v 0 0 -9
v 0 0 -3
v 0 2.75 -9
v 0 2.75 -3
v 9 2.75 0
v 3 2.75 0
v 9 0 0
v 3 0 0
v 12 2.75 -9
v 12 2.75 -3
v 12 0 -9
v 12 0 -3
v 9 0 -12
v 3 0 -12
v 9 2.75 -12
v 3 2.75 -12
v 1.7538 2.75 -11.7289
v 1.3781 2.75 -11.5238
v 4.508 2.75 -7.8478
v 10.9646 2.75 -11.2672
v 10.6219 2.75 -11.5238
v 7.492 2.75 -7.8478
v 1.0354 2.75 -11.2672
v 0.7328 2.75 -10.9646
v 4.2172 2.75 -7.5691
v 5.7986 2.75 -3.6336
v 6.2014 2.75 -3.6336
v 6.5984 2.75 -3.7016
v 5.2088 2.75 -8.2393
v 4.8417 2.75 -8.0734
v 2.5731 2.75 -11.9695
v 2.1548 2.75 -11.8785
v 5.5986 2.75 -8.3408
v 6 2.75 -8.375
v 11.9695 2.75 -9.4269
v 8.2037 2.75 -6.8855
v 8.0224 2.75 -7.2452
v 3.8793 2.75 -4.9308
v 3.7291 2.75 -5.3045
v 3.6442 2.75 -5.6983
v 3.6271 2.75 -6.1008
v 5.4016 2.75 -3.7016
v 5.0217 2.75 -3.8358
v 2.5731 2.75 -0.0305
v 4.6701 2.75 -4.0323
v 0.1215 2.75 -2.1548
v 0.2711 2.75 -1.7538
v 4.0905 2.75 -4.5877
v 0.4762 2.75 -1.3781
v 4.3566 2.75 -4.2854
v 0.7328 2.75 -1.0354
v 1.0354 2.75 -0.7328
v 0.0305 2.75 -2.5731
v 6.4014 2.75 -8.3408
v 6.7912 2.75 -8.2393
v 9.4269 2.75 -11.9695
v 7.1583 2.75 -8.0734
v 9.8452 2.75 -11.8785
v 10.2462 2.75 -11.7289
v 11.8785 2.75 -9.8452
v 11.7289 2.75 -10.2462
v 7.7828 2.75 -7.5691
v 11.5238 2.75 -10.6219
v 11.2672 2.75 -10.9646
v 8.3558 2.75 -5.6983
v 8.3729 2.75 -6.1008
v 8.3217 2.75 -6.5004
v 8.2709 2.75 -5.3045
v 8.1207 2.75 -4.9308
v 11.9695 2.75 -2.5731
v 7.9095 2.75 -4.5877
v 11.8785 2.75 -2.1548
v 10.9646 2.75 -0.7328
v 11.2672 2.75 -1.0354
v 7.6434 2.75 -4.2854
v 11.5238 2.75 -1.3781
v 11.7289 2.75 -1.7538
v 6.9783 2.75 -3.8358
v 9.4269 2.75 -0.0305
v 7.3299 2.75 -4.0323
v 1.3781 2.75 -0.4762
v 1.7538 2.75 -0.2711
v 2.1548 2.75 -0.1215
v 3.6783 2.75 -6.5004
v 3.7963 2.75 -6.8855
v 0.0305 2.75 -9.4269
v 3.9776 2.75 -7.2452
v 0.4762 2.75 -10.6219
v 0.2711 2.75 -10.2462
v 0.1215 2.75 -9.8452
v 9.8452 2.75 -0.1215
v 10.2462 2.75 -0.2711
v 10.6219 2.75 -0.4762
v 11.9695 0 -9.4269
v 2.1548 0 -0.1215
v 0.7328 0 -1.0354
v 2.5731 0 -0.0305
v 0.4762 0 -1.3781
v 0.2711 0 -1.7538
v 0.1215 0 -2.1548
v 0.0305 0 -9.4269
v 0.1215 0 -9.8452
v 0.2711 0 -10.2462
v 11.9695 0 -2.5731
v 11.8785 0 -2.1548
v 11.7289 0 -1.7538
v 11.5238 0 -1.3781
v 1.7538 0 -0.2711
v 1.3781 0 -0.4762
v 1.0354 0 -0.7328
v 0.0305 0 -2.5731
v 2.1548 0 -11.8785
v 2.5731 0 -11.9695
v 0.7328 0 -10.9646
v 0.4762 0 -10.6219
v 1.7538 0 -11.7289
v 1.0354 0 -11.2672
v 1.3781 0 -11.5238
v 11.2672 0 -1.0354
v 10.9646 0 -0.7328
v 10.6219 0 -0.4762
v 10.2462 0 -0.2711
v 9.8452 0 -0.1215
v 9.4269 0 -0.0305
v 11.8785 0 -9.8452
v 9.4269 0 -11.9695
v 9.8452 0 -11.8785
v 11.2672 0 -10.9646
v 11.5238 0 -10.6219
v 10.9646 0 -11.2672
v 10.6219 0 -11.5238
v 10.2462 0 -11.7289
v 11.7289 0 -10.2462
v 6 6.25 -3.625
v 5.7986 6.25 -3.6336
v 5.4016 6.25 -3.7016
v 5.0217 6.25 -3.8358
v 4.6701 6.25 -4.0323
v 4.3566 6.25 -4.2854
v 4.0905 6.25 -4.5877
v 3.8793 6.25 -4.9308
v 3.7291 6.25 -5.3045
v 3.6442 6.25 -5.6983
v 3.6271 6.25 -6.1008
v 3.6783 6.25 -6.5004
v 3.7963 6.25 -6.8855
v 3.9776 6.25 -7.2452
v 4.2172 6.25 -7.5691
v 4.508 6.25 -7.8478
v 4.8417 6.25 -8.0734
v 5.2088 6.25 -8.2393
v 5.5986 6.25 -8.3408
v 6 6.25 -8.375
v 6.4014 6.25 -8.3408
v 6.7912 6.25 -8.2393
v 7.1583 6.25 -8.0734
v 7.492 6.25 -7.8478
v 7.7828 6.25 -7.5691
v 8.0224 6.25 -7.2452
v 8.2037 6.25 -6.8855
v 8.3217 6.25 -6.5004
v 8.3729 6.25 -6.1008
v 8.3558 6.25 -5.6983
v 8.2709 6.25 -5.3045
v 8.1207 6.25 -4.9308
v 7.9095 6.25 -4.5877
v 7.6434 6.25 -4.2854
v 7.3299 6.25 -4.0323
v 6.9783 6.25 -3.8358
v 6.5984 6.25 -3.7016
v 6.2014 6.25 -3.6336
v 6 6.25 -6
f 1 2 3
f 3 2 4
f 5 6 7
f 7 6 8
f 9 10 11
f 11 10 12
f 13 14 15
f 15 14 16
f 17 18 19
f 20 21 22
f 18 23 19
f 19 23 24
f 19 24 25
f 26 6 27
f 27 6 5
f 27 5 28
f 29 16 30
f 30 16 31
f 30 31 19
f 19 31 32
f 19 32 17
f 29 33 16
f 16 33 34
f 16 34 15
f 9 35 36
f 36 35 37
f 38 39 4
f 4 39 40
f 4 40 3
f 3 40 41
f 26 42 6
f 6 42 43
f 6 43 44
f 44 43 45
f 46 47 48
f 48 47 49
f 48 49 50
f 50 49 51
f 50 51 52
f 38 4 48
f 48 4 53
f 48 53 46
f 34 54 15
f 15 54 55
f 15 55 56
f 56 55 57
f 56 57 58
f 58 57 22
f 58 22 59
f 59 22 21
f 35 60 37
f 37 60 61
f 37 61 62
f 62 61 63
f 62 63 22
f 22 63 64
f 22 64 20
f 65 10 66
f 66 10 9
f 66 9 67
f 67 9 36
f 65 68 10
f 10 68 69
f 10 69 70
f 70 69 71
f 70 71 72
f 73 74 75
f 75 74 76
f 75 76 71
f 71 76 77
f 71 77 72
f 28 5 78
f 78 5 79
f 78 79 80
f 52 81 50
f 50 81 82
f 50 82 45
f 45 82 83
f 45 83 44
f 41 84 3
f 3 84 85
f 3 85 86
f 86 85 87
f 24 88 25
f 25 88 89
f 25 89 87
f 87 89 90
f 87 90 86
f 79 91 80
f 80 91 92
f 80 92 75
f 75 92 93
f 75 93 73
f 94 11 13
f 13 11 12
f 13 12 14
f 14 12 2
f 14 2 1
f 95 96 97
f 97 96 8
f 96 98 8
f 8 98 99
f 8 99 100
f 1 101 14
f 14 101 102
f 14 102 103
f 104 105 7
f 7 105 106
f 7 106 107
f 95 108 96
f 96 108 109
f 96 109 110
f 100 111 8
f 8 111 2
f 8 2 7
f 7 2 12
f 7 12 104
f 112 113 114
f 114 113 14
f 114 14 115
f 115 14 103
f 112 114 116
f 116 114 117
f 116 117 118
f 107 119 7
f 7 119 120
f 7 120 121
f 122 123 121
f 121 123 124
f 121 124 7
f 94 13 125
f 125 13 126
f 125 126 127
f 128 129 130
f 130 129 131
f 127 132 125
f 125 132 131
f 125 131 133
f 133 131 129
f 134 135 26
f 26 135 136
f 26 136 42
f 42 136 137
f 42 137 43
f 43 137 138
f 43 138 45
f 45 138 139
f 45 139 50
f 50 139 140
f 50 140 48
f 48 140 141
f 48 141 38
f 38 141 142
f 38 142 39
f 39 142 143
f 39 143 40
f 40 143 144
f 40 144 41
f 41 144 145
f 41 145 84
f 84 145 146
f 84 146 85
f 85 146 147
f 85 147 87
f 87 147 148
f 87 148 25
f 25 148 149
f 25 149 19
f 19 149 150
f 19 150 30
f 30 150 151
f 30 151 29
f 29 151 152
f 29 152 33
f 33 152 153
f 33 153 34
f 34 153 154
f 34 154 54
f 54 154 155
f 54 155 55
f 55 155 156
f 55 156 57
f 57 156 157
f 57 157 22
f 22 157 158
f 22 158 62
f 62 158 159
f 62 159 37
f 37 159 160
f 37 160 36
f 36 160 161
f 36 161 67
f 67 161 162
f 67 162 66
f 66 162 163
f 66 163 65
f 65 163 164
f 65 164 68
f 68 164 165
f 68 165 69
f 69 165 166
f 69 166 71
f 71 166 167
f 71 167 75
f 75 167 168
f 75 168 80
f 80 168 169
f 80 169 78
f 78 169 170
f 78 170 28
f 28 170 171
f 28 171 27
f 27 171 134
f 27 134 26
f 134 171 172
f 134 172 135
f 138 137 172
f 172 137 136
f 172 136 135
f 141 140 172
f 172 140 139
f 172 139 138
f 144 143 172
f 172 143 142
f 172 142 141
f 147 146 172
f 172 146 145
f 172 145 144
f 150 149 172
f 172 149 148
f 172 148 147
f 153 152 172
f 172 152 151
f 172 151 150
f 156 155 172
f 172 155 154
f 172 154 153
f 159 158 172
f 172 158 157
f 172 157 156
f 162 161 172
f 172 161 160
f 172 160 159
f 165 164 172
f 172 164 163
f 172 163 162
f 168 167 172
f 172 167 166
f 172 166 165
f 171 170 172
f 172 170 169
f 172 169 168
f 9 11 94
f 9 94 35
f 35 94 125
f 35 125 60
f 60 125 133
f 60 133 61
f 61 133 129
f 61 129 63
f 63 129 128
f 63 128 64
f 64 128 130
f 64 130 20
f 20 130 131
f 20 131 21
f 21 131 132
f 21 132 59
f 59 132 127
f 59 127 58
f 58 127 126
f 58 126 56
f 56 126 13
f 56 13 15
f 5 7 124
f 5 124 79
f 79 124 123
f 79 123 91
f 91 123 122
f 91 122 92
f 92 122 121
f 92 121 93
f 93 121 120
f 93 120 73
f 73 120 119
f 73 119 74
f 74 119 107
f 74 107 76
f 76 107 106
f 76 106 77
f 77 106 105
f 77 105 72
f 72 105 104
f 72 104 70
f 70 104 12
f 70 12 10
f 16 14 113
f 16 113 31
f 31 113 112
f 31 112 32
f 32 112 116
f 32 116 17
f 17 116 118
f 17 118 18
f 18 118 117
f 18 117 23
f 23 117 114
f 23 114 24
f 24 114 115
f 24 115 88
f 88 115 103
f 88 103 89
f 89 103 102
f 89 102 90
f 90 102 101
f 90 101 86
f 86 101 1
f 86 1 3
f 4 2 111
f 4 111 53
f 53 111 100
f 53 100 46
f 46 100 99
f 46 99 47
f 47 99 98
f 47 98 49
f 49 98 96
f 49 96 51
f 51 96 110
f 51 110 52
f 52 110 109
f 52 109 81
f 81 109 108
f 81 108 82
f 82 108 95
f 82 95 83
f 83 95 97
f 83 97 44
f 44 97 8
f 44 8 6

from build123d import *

# Parameters (mm, degrees)
SKETCH1_W           = 12
SKETCH1_H           = 12
BOSS_EXTRUDE1_DEPTH = 2.75
SKETCH3_R           = 2.375
BOSS_EXTRUDE2_DEPTH = 3.5
FILLET1_R           = 3


with BuildPart() as part:
    # Sketch1 → Boss-Extrude1 (new body)
    with BuildSketch(Plane(origin=(0, 0, 0), x_dir=(1, 0, 0), z_dir=(0, 1, 0))):
        with Locations((6, 6)):
            Rectangle(SKETCH1_W, SKETCH1_H)
    extrude(amount=BOSS_EXTRUDE1_DEPTH)

    # Sketch3 → Boss-Extrude2 (add)
    with BuildSketch(Plane(origin=(0, 2.75, 0), x_dir=(1, 0, 0), z_dir=(0, 1, 0))):
        with Locations((6, 6)):
            Circle(SKETCH3_R)
    extrude(amount=BOSS_EXTRUDE2_DEPTH)

    # Fillet1
    fillet1_edges = [part.edges().sort_by_distance(p)[0] for p in [
        (0, 1.375, -12),
        (12, 1.375, -12),
        (12, 1.375, 0),
        (0, 1.375, 0),
    ]]
    fillet(fillet1_edges, radius=FILLET1_R)


solid = part.part
